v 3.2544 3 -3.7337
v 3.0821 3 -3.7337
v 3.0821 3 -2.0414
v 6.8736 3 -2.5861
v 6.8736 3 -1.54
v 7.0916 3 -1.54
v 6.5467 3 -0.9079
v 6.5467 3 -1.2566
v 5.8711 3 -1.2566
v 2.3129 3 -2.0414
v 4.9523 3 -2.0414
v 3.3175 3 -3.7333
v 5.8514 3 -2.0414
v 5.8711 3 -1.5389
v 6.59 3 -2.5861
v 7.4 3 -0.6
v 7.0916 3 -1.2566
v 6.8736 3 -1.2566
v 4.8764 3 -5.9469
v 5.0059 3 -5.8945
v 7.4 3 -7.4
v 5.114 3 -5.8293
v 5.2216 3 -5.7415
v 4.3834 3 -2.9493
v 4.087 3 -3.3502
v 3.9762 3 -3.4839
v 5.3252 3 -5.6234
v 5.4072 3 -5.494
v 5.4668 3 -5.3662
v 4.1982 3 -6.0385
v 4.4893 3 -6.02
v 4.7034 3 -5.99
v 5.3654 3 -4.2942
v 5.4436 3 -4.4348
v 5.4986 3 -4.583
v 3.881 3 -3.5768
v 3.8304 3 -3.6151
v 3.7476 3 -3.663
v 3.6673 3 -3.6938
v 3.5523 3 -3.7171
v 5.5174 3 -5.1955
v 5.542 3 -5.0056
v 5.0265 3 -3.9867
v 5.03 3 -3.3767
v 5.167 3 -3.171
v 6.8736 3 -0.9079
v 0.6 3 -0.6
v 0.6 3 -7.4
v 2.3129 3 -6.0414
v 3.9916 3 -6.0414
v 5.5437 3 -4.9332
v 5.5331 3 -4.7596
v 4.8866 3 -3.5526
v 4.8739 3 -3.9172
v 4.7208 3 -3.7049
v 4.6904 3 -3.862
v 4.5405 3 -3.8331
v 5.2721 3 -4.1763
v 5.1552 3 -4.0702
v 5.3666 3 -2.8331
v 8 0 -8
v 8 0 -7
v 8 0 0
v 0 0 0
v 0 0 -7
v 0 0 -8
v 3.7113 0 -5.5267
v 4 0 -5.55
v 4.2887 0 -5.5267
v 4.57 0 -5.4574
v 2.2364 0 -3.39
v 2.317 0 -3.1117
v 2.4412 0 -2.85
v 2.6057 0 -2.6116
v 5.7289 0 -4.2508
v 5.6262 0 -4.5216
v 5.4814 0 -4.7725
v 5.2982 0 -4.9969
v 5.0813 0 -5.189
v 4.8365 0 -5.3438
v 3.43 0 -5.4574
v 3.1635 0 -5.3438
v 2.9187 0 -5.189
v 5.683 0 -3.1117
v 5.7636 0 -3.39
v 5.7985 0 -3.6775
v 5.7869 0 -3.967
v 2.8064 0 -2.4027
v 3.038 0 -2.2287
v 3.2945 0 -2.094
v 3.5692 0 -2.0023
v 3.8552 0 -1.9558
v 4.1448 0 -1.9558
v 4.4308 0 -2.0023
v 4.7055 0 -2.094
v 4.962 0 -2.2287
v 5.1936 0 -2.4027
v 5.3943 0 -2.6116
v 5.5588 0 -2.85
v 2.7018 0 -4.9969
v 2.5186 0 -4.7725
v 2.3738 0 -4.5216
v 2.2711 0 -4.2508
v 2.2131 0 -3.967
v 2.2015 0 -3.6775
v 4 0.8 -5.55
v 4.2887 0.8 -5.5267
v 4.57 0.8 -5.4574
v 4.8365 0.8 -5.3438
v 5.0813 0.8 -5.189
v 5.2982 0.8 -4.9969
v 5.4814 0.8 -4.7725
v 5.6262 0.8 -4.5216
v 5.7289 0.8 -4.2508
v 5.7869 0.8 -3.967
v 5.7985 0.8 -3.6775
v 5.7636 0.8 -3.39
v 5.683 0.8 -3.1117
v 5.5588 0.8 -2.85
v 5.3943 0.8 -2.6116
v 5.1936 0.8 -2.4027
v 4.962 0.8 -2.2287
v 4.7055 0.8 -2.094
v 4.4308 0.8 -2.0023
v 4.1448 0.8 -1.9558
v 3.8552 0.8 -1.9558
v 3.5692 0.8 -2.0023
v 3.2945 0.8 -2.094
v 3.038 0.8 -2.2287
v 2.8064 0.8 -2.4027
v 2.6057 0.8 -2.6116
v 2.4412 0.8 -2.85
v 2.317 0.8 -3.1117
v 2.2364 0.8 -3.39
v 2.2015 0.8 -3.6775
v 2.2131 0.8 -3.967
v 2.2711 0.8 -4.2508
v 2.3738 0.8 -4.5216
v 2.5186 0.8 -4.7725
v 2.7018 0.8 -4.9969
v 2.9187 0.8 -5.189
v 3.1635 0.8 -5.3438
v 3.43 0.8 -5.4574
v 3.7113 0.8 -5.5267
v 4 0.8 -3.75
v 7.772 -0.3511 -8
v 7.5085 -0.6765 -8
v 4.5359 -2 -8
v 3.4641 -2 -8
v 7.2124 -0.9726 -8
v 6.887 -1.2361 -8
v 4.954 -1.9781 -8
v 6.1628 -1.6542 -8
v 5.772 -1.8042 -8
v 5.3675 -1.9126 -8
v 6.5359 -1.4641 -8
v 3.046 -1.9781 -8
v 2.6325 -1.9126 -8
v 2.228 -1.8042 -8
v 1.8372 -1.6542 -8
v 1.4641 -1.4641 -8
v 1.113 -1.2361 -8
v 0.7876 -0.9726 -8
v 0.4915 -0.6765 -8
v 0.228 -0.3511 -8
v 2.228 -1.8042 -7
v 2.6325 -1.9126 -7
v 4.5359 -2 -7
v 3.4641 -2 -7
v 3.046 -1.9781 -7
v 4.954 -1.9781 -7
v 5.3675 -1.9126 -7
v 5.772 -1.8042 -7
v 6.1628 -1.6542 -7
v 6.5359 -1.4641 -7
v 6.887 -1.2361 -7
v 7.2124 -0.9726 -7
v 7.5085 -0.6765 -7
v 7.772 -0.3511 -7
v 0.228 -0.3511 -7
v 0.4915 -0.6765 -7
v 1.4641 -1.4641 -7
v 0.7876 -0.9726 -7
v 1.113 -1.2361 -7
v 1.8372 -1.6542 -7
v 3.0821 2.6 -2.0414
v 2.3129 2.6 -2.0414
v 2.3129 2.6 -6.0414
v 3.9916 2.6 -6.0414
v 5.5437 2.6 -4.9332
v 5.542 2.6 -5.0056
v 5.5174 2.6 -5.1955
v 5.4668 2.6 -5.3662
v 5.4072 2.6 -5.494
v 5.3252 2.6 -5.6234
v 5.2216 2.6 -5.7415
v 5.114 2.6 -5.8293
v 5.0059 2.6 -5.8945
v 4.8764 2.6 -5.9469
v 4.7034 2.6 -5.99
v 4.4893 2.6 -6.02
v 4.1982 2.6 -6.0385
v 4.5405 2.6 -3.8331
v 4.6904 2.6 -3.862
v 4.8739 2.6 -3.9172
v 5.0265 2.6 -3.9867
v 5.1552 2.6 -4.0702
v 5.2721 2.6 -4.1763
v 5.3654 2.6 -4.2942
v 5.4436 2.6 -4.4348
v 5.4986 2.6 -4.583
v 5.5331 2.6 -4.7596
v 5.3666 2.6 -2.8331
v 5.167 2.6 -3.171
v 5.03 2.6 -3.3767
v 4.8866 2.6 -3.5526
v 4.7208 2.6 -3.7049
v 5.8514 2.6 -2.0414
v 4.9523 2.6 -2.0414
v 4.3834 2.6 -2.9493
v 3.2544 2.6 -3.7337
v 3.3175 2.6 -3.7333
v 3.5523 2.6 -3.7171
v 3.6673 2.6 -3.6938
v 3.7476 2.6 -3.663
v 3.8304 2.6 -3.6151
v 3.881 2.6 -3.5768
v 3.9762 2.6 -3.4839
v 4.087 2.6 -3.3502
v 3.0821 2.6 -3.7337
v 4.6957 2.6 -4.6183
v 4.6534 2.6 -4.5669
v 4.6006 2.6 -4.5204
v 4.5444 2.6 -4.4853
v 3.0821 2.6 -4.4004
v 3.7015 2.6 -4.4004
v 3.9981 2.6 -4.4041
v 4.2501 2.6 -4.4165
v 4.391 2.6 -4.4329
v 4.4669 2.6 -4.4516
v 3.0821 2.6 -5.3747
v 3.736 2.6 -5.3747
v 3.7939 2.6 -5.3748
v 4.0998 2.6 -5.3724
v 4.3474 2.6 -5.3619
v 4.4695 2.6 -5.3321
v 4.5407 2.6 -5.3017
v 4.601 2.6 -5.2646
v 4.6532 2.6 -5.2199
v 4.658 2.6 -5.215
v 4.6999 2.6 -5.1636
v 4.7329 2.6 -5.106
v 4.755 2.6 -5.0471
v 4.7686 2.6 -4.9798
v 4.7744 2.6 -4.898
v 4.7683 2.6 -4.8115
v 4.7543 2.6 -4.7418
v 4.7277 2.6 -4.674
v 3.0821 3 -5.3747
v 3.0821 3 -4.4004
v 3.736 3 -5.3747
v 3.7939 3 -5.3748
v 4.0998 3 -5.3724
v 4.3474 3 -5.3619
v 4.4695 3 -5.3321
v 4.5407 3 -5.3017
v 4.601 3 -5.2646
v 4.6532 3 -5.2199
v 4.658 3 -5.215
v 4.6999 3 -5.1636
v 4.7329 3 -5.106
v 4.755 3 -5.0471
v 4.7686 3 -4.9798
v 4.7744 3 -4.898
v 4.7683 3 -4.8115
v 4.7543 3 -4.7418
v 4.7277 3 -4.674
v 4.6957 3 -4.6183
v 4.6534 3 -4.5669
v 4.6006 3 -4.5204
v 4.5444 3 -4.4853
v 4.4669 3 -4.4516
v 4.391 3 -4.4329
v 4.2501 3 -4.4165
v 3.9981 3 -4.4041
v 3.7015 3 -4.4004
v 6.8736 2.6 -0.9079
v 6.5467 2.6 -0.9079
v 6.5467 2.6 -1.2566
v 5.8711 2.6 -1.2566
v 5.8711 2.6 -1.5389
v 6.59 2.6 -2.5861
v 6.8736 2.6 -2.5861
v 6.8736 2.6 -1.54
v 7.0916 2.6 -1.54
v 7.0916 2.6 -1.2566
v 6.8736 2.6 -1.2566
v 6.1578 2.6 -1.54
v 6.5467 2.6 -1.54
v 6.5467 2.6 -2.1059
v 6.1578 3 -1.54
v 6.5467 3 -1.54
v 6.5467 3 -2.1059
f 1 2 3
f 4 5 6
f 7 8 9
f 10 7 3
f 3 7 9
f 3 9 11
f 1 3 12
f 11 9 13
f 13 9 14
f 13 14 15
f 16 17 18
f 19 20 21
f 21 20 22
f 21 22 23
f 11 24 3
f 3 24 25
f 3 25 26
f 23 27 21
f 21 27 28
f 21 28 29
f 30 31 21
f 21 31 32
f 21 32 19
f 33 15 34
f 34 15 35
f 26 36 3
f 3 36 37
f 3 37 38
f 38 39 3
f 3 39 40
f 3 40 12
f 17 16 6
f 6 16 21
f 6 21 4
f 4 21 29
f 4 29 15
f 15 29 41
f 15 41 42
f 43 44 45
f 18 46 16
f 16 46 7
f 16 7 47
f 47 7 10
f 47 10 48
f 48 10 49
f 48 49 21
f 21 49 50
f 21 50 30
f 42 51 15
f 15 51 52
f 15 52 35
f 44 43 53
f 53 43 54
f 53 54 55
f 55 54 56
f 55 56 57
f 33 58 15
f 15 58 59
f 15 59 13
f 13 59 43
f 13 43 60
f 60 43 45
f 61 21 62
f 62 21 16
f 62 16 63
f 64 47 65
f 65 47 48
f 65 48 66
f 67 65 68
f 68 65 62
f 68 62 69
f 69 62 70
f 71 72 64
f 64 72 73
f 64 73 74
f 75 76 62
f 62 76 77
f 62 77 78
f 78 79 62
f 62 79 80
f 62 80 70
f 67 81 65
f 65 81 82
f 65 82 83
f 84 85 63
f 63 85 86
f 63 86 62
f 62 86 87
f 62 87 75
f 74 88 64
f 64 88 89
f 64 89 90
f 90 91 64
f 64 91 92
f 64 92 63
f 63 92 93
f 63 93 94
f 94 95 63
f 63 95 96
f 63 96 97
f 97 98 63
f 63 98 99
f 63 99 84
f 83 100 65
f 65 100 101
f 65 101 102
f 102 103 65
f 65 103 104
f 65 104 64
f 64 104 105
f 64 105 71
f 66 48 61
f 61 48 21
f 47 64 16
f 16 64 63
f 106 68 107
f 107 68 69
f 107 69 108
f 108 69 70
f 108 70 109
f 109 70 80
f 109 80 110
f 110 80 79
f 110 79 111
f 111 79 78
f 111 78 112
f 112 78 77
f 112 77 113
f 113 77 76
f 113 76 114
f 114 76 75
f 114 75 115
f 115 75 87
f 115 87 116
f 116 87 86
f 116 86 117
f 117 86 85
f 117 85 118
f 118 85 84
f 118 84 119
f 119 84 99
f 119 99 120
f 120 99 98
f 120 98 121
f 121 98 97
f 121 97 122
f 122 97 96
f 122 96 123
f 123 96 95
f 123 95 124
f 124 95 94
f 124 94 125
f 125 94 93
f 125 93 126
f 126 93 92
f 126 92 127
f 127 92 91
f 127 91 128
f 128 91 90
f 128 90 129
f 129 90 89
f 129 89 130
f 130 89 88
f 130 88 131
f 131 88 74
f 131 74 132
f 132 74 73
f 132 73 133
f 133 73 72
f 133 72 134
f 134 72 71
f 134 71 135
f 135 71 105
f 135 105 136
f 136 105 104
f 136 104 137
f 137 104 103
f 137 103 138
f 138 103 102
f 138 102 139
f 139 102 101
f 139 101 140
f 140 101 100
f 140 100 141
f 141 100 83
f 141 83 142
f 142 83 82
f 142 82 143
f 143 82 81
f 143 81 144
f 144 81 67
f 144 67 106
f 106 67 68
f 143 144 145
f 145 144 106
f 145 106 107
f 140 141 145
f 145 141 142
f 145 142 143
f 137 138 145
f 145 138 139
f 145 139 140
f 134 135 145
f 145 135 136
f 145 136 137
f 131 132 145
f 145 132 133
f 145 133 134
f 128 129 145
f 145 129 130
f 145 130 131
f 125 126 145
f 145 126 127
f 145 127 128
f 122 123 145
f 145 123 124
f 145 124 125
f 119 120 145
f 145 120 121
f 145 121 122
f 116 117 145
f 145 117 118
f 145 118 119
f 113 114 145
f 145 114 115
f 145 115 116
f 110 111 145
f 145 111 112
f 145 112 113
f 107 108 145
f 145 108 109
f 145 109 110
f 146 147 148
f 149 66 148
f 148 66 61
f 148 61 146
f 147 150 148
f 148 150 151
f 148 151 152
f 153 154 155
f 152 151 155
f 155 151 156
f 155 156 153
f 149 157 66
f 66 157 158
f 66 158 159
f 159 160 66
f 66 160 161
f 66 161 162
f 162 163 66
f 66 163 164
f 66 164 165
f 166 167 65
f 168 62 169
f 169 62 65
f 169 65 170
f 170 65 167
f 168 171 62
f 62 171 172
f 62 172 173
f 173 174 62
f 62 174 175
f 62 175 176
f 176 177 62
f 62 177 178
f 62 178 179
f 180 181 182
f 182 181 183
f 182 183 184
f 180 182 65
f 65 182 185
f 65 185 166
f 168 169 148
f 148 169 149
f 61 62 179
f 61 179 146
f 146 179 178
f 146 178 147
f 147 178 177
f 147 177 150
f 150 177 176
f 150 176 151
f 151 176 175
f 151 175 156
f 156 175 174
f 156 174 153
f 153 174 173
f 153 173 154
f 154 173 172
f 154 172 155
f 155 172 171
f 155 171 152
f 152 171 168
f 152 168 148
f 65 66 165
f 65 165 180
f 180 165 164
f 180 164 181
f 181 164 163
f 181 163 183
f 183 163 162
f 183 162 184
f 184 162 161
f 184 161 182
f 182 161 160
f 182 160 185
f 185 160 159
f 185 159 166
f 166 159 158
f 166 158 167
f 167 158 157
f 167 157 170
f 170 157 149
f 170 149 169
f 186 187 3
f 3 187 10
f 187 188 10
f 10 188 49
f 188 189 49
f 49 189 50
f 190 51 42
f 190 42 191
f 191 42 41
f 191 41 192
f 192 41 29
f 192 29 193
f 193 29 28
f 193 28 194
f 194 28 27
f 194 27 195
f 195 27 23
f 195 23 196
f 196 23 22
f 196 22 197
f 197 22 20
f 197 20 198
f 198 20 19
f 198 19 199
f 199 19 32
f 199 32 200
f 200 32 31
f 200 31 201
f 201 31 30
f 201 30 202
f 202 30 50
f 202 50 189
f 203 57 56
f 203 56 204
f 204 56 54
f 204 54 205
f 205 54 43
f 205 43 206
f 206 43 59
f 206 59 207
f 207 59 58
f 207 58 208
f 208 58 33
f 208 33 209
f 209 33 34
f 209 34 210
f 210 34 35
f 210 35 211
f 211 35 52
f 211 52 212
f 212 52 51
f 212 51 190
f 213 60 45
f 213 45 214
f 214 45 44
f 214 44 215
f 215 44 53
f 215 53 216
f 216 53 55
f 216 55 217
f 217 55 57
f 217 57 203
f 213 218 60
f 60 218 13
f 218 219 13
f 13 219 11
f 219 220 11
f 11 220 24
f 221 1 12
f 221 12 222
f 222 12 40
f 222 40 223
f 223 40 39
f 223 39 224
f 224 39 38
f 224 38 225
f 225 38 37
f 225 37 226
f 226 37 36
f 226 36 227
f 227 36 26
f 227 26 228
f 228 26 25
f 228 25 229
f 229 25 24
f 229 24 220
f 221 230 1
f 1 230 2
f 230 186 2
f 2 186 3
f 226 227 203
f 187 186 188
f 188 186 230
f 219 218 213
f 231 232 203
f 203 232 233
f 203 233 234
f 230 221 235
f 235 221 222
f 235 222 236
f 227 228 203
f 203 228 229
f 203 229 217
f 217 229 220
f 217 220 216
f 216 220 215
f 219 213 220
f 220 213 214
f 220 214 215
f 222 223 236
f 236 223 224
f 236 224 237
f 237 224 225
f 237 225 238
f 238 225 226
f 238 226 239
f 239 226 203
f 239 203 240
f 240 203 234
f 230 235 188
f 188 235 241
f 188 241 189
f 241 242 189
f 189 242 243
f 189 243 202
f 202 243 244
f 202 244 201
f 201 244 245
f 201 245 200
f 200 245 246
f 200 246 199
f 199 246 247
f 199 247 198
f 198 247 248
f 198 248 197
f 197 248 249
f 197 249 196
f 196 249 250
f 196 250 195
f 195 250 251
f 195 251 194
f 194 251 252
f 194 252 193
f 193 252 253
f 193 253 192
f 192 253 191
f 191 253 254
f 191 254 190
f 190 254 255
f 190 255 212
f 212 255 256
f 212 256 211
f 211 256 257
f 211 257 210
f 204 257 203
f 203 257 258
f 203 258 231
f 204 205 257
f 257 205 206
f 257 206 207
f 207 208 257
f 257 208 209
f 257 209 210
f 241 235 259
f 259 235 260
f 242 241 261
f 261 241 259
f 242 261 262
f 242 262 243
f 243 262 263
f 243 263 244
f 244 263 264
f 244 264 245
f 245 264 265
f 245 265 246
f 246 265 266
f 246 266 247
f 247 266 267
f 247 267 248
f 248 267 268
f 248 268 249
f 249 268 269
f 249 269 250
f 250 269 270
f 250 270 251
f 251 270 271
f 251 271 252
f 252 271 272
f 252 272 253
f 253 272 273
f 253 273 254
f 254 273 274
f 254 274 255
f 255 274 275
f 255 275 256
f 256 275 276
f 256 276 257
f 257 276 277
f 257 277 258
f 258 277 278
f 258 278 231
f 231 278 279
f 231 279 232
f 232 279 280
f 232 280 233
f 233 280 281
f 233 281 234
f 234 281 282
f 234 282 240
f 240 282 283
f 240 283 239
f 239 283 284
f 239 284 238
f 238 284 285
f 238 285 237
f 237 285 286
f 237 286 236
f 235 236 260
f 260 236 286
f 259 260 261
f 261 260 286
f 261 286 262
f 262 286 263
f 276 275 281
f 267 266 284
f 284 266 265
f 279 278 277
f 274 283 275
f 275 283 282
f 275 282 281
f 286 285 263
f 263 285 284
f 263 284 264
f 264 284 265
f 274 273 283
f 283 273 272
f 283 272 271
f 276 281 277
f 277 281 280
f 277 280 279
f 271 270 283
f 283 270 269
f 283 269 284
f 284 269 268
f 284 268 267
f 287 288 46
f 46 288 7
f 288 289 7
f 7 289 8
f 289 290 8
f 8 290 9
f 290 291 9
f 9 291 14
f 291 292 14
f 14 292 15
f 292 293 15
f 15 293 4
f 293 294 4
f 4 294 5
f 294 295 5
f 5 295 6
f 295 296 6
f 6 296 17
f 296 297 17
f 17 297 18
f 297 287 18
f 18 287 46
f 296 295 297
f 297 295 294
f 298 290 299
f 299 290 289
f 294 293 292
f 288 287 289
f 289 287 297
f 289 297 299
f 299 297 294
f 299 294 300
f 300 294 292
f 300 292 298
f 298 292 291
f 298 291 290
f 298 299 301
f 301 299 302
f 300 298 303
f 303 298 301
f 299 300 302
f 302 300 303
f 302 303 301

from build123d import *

# Parameters (mm, degrees)
SKETCH1_W               = 8
SKETCH1_H               = 8
BOSS_EXTRUDE1_DEPTH     = 3
CUT_EXTRUDE1_DEPTH      = 12.704699911
CUT_EXTRUDE1_DEPTH_BACK = 12.704699911
CUT_EXTRUDE2_DEPTH      = 11
SKETCH4_R               = 1.8
CUT_EXTRUDE3_DEPTH      = 0.8
SKETCH5_W               = 8
SKETCH5_H               = 1
BOSS_EXTRUDE2_DEPTH     = 2
FILLET1_R               = 4
CUT_EXTRUDE4_DEPTH      = 0.4
CUT_EXTRUDE5_DEPTH      = 0.4


with BuildPart() as part:
    # Sketch1 → Boss-Extrude1 (new body)
    with BuildSketch(Plane(origin=(0, 0, 0), x_dir=(1, 0, 0), z_dir=(0, 1, 0))):
        with Locations((4, 4)):
            Rectangle(SKETCH1_W, SKETCH1_H)
    extrude(amount=BOSS_EXTRUDE1_DEPTH)

    # Sketch2 → Cut-Extrude1 (cut, two sides: drawn at the far end of the back side and taken through both)
    with BuildSketch(Plane.XY.offset(-CUT_EXTRUDE1_DEPTH_BACK)):
        Polygon((0, 0), (0.6, 3), (0, 3), align=None)
        Polygon((8, 0), (7.4, 3), (8, 3), align=None)
    extrude(amount=CUT_EXTRUDE1_DEPTH + CUT_EXTRUDE1_DEPTH_BACK, mode=Mode.SUBTRACT)

    # Sketch3 → Cut-Extrude2 (cut)
    with BuildSketch(Plane(origin=(0, 0, 0), x_dir=(0, 0, -1), z_dir=(1, 0, 0))):
        Polygon((0, 0), (0.6, 3), (0, 3), align=None)
        Polygon((8, 3), (7.4, 3), (8, 0), align=None)
    extrude(amount=CUT_EXTRUDE2_DEPTH, mode=Mode.SUBTRACT)

    # Sketch4 → Cut-Extrude3 (cut)
    with BuildSketch(Plane.XZ):
        with Locations(Location((4, -3.75, 0), (0, 0, 270))):
            Circle(SKETCH4_R)
    extrude(amount=-CUT_EXTRUDE3_DEPTH, mode=Mode.SUBTRACT)

    # Sketch5 → Boss-Extrude2 (add)
    with BuildSketch(Plane.XZ):
        with Locations((4, -7.5)):
            Rectangle(SKETCH5_W, SKETCH5_H)
    extrude(amount=BOSS_EXTRUDE2_DEPTH)

    # Fillet1
    # the kernel refuses this fillet: 4 mm, written as the material it takes off along each edge
    with BuildSketch(Plane(origin=(8, -2, -16.660254038), x_dir=(0, 1, 0), z_dir=(0, 0, 1)), Plane(origin=(0, -2, 1.660254038), x_dir=(0, 1, 0), z_dir=(0, 0, -1))) as fillet1_piece_1:
        with BuildLine():
            CenterArc((4, 3.464101615), FILLET1_R, 180, 60)
            Line((0, 3.464101615), (-0.08, 3.464101615))
            Line((-0.08, 3.464101615), (-0.08, 0))
            Line((-0.08, 0), (0, -0.08))
            ThreePointArc((0, -0.08), (1, -0.08), (1.96, -0.069282032))
            Line((1.96, -0.069282032), (2, 0))
        make_face()
    extrude(amount=18.320508076, mode=Mode.SUBTRACT)

    # Sketch6 → Cut-Extrude4 (cut)
    with BuildSketch(Plane(origin=(0, 3, 0), x_dir=(1, 0, 0), z_dir=(0, 1, 0))):
        with BuildLine():
            Line((2.312898911, 2.041410717), (2.312898911, 6.041410717))
            Line((2.312898911, 6.041410717), (3.991584808, 6.041410717))
            add(Edge.make_bspline(
                [(3.991584808, 6.041410717), (4.042601732, 6.041096301), (4.140920681, 6.040490364), (4.283109063, 6.036071747), (4.414238667, 6.026814487), (4.534891188, 6.016330564), (4.644487122, 6.001077132), (4.74345979, 5.982803671), (4.831642566, 5.961627249), (4.910322089, 5.936265049), (4.982061831, 5.90723713), (5.04889092, 5.87268574), (5.111544162, 5.83220454), (5.170983849, 5.787188805), (5.227461685, 5.737569368), (5.279429347, 5.682033053), (5.32779225, 5.621406813), (5.372511371, 5.556195062), (5.411906117, 5.48668575), (5.447902572, 5.415111184), (5.477205044, 5.340709703), (5.50140862, 5.263831792), (5.52074281, 5.184644366), (5.534162371, 5.102946099), (5.542540058, 5.018884869), (5.543287935, 4.962103945), (5.543668142, 4.93323764)],
                knots=[0, 0, 0, 0, 1.675828044, 3.229627355, 4.67171229, 5.993455049, 7.206927059, 8.304770529, 9.29850117, 10.183580433, 11.017754134, 11.837875825, 12.650738409, 13.464925643, 14.285328857, 15.117007378, 15.959673368, 16.830859064, 17.711229498, 18.58228265, 19.460420693, 20.334473227, 21.228207035, 22.135446768, 23.052097822, 24, 24, 24, 24], degree=3))
            add(Edge.make_bspline(
                [(5.543668142, 4.93323764), (5.542962916, 4.896874176), (5.541584712, 4.825809944), (5.528901745, 4.721651895), (5.5100643, 4.622136315), (5.483211668, 4.527125334), (5.446289845, 4.437736414), (5.403428122, 4.352717347), (5.352308317, 4.272356517), (5.293277733, 4.19745058), (5.226389218, 4.127933229), (5.151349641, 4.065235076), (5.06869476, 4.009111084), (4.977924564, 3.959884897), (4.879671091, 3.917801842), (4.77350828, 3.882394441), (4.659916733, 3.853576761), (4.580902516, 3.840017181), (4.540463013, 3.833077384)],
                knots=[0, 0, 0, 0, 1.05911256, 2.069797862, 3.05271628, 4.008392045, 4.940519534, 5.866323021, 6.779546087, 7.71056835, 8.640711998, 9.585328432, 10.554502533, 11.547017206, 12.589327225, 13.664782803, 14.804835066, 16, 16, 16, 16], degree=3))
            add(Edge.make_bspline(
                [(4.540463013, 3.833077384), (4.579572554, 3.807174767), (4.656115253, 3.756479818), (4.762017587, 3.672984601), (4.857092756, 3.585349912), (4.929078878, 3.507419696), (4.984392794, 3.438888442), (5.028929947, 3.378950347), (5.076970406, 3.309970293), (5.128042999, 3.231910907), (5.183657562, 3.145462828), (5.241745689, 3.049302835), (5.303522957, 2.944368887), (5.345058377, 2.871067212), (5.366584808, 2.833077384)],
                knots=[0, 0, 0, 0, 1.285445069, 2.515791127, 3.691898215, 4.826622834, 5.420063933, 6.105349801, 6.873086501, 7.723915395, 8.66222816, 9.690593598, 10.803111229, 12, 12, 12, 12], degree=3))
            Line((5.366584808, 2.833077384), (5.851360449, 2.041410717))
            Line((5.851360449, 2.041410717), (4.952321988, 2.041410717))
            Line((4.952321988, 2.041410717), (4.383411731, 2.949263281))
            add(Edge.make_bspline(
                [(4.383411731, 2.949263281), (4.357283981, 2.985622121), (4.307400733, 3.055038622), (4.235391184, 3.153681722), (4.169508837, 3.241491798), (4.111507042, 3.319740728), (4.058450932, 3.386209972), (4.011951502, 3.442057857), (3.972955886, 3.488482798), (3.928832249, 3.534515131), (3.877499082, 3.581823547), (3.813952721, 3.627691749), (3.748696505, 3.664257396), (3.678779681, 3.692157844), (3.597922987, 3.71161189), (3.500720436, 3.724006591), (3.384115753, 3.733151261), (3.299833928, 3.733519777), (3.254405321, 3.73371841)],
                knots=[0, 0, 0, 0, 1.465447777, 2.797841088, 3.997266218, 5.05856206, 5.985598736, 6.780315439, 7.437430484, 7.969193402, 8.866571936, 9.718200644, 10.52825214, 11.309096006, 12.174169268, 13.242355782, 14.513606761, 16, 16, 16, 16], degree=3))
            Line((3.254405321, 3.73371841), (3.08212968, 3.73371841))
            Line((3.08212968, 3.73371841), (3.08212968, 2.041410717))
            Line((3.08212968, 2.041410717), (2.312898911, 2.041410717))
        make_face()
        with BuildLine():
            Line((3.08212968, 4.400385076), (3.701520706, 4.400385076))
            add(Edge.make_bspline(
                [(3.701520706, 4.400385076), (3.749332843, 4.400487541), (3.840423044, 4.400682752), (3.969955122, 4.403510317), (4.085670885, 4.405910235), (4.186877859, 4.411940131), (4.274028855, 4.417916326), (4.346774263, 4.425683211), (4.405726987, 4.434863419), (4.464610849, 4.449136231), (4.52492793, 4.474003789), (4.589214527, 4.509422512), (4.644158691, 4.555370201), (4.691753027, 4.608490376), (4.728060837, 4.670937972), (4.756498441, 4.739930879), (4.770916908, 4.817002181), (4.773239296, 4.87042263), (4.774437372, 4.89798123)],
                knots=[0, 0, 0, 0, 1.697953026, 3.23488743, 4.60134403, 5.807846676, 6.835100678, 7.703488618, 8.405232423, 8.952775585, 9.851109663, 10.713519226, 11.549115941, 12.382556273, 13.233359028, 14.101746968, 15.020727134, 16, 16, 16, 16], degree=3))
            add(Edge.make_bspline(
                [(4.774437372, 4.89798123), (4.773074786, 4.928811222), (4.770445895, 4.98829272), (4.749714088, 5.072935459), (4.713527564, 5.147705664), (4.663829732, 5.212726785), (4.601441933, 5.267631557), (4.527131165, 5.311213996), (4.441449505, 5.343672387), (4.379650359, 5.355659208), (4.347354039, 5.361923538)],
                knots=[0, 0, 0, 0, 1.062977961, 2.050844577, 2.982300261, 3.90936959, 4.856017476, 5.831122378, 6.86654153, 8, 8, 8, 8], degree=3))
            add(Edge.make_bspline(
                [(4.347354039, 5.361923538), (4.336678458, 5.363096555), (4.311375089, 5.365876852), (4.266692338, 5.367662514), (4.20955971, 5.370407271), (4.139285669, 5.371528992), (4.056498042, 5.373495271), (3.960867626, 5.373856329), (3.852698247, 5.375009885), (3.776307493, 5.374835906), (3.735975834, 5.374744051)],
                knots=[0, 0, 0, 0, 0.42127143, 0.998501726, 1.753681744, 2.66564073, 3.755712164, 5.002818897, 6.417592707, 8, 8, 8, 8], degree=3))
            Line((3.735975834, 5.374744051), (3.08212968, 5.374744051))
            Line((3.08212968, 5.374744051), (3.08212968, 4.400385076))
        make_face(mode=Mode.SUBTRACT)
    extrude(amount=-CUT_EXTRUDE4_DEPTH, mode=Mode.SUBTRACT)

    # Sketch7 → Cut-Extrude5 (cut)
    with BuildSketch(Plane(origin=(0, 3, 0), x_dir=(1, 0, 0), z_dir=(0, 1, 0))):
        Polygon((6.546707708, 0.907912363), (6.546707708, 1.256630312), (5.871066683, 1.256630312), (5.871066683, 1.53894201), (6.589956907, 2.586117491), (6.873630785, 2.586117491), (6.873630785, 1.539963645), (7.091579503, 1.539963645), (7.091579503, 1.256630312), (6.873630785, 1.256630312), (6.873630785, 0.907912363), align=None)
        Polygon((6.546707708, 1.539963645), (6.546707708, 2.105949222), (6.157805465, 1.539963645), align=None, mode=Mode.SUBTRACT)
    extrude(amount=-CUT_EXTRUDE5_DEPTH, mode=Mode.SUBTRACT)


solid = part.part
